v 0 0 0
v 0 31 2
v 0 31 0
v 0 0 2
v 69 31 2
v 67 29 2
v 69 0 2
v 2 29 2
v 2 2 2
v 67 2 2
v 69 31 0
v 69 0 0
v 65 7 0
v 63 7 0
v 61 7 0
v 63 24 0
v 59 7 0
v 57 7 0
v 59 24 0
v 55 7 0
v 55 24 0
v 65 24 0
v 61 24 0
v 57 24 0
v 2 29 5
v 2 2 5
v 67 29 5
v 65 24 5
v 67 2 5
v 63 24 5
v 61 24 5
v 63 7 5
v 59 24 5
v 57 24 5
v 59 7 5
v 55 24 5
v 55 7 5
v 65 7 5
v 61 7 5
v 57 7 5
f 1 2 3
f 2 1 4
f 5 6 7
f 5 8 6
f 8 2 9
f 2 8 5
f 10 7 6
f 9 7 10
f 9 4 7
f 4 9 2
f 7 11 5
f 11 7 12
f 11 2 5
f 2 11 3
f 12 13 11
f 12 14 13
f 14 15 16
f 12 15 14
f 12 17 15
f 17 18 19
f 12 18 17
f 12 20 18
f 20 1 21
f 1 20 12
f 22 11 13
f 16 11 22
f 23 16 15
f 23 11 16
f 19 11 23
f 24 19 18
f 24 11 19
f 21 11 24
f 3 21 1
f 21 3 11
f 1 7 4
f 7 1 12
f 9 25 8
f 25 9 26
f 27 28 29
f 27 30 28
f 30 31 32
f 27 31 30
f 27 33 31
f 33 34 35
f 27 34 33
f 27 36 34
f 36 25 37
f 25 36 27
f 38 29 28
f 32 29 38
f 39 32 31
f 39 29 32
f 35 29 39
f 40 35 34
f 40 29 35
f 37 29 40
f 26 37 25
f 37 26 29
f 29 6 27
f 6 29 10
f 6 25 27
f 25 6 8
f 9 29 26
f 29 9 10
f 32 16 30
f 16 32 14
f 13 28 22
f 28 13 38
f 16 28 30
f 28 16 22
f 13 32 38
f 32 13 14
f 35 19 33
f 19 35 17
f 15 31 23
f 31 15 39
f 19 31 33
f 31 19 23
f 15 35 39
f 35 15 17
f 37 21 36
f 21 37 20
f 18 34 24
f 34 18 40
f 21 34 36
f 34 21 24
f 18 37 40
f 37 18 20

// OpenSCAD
$fn=50;

// ESP8266   49mm x 26mm x 14mm

difference() {
	union() {
		//Korpus
		cube([69,31,2]);
		translate([2,2,2]) cube([65,27,3]);
	}
	translate([63,7,0]) cube([2,17,5]);
	translate([59,7,0]) cube([2,17,5]);
	translate([55,7,0]) cube([2,17,5]);

}
	
